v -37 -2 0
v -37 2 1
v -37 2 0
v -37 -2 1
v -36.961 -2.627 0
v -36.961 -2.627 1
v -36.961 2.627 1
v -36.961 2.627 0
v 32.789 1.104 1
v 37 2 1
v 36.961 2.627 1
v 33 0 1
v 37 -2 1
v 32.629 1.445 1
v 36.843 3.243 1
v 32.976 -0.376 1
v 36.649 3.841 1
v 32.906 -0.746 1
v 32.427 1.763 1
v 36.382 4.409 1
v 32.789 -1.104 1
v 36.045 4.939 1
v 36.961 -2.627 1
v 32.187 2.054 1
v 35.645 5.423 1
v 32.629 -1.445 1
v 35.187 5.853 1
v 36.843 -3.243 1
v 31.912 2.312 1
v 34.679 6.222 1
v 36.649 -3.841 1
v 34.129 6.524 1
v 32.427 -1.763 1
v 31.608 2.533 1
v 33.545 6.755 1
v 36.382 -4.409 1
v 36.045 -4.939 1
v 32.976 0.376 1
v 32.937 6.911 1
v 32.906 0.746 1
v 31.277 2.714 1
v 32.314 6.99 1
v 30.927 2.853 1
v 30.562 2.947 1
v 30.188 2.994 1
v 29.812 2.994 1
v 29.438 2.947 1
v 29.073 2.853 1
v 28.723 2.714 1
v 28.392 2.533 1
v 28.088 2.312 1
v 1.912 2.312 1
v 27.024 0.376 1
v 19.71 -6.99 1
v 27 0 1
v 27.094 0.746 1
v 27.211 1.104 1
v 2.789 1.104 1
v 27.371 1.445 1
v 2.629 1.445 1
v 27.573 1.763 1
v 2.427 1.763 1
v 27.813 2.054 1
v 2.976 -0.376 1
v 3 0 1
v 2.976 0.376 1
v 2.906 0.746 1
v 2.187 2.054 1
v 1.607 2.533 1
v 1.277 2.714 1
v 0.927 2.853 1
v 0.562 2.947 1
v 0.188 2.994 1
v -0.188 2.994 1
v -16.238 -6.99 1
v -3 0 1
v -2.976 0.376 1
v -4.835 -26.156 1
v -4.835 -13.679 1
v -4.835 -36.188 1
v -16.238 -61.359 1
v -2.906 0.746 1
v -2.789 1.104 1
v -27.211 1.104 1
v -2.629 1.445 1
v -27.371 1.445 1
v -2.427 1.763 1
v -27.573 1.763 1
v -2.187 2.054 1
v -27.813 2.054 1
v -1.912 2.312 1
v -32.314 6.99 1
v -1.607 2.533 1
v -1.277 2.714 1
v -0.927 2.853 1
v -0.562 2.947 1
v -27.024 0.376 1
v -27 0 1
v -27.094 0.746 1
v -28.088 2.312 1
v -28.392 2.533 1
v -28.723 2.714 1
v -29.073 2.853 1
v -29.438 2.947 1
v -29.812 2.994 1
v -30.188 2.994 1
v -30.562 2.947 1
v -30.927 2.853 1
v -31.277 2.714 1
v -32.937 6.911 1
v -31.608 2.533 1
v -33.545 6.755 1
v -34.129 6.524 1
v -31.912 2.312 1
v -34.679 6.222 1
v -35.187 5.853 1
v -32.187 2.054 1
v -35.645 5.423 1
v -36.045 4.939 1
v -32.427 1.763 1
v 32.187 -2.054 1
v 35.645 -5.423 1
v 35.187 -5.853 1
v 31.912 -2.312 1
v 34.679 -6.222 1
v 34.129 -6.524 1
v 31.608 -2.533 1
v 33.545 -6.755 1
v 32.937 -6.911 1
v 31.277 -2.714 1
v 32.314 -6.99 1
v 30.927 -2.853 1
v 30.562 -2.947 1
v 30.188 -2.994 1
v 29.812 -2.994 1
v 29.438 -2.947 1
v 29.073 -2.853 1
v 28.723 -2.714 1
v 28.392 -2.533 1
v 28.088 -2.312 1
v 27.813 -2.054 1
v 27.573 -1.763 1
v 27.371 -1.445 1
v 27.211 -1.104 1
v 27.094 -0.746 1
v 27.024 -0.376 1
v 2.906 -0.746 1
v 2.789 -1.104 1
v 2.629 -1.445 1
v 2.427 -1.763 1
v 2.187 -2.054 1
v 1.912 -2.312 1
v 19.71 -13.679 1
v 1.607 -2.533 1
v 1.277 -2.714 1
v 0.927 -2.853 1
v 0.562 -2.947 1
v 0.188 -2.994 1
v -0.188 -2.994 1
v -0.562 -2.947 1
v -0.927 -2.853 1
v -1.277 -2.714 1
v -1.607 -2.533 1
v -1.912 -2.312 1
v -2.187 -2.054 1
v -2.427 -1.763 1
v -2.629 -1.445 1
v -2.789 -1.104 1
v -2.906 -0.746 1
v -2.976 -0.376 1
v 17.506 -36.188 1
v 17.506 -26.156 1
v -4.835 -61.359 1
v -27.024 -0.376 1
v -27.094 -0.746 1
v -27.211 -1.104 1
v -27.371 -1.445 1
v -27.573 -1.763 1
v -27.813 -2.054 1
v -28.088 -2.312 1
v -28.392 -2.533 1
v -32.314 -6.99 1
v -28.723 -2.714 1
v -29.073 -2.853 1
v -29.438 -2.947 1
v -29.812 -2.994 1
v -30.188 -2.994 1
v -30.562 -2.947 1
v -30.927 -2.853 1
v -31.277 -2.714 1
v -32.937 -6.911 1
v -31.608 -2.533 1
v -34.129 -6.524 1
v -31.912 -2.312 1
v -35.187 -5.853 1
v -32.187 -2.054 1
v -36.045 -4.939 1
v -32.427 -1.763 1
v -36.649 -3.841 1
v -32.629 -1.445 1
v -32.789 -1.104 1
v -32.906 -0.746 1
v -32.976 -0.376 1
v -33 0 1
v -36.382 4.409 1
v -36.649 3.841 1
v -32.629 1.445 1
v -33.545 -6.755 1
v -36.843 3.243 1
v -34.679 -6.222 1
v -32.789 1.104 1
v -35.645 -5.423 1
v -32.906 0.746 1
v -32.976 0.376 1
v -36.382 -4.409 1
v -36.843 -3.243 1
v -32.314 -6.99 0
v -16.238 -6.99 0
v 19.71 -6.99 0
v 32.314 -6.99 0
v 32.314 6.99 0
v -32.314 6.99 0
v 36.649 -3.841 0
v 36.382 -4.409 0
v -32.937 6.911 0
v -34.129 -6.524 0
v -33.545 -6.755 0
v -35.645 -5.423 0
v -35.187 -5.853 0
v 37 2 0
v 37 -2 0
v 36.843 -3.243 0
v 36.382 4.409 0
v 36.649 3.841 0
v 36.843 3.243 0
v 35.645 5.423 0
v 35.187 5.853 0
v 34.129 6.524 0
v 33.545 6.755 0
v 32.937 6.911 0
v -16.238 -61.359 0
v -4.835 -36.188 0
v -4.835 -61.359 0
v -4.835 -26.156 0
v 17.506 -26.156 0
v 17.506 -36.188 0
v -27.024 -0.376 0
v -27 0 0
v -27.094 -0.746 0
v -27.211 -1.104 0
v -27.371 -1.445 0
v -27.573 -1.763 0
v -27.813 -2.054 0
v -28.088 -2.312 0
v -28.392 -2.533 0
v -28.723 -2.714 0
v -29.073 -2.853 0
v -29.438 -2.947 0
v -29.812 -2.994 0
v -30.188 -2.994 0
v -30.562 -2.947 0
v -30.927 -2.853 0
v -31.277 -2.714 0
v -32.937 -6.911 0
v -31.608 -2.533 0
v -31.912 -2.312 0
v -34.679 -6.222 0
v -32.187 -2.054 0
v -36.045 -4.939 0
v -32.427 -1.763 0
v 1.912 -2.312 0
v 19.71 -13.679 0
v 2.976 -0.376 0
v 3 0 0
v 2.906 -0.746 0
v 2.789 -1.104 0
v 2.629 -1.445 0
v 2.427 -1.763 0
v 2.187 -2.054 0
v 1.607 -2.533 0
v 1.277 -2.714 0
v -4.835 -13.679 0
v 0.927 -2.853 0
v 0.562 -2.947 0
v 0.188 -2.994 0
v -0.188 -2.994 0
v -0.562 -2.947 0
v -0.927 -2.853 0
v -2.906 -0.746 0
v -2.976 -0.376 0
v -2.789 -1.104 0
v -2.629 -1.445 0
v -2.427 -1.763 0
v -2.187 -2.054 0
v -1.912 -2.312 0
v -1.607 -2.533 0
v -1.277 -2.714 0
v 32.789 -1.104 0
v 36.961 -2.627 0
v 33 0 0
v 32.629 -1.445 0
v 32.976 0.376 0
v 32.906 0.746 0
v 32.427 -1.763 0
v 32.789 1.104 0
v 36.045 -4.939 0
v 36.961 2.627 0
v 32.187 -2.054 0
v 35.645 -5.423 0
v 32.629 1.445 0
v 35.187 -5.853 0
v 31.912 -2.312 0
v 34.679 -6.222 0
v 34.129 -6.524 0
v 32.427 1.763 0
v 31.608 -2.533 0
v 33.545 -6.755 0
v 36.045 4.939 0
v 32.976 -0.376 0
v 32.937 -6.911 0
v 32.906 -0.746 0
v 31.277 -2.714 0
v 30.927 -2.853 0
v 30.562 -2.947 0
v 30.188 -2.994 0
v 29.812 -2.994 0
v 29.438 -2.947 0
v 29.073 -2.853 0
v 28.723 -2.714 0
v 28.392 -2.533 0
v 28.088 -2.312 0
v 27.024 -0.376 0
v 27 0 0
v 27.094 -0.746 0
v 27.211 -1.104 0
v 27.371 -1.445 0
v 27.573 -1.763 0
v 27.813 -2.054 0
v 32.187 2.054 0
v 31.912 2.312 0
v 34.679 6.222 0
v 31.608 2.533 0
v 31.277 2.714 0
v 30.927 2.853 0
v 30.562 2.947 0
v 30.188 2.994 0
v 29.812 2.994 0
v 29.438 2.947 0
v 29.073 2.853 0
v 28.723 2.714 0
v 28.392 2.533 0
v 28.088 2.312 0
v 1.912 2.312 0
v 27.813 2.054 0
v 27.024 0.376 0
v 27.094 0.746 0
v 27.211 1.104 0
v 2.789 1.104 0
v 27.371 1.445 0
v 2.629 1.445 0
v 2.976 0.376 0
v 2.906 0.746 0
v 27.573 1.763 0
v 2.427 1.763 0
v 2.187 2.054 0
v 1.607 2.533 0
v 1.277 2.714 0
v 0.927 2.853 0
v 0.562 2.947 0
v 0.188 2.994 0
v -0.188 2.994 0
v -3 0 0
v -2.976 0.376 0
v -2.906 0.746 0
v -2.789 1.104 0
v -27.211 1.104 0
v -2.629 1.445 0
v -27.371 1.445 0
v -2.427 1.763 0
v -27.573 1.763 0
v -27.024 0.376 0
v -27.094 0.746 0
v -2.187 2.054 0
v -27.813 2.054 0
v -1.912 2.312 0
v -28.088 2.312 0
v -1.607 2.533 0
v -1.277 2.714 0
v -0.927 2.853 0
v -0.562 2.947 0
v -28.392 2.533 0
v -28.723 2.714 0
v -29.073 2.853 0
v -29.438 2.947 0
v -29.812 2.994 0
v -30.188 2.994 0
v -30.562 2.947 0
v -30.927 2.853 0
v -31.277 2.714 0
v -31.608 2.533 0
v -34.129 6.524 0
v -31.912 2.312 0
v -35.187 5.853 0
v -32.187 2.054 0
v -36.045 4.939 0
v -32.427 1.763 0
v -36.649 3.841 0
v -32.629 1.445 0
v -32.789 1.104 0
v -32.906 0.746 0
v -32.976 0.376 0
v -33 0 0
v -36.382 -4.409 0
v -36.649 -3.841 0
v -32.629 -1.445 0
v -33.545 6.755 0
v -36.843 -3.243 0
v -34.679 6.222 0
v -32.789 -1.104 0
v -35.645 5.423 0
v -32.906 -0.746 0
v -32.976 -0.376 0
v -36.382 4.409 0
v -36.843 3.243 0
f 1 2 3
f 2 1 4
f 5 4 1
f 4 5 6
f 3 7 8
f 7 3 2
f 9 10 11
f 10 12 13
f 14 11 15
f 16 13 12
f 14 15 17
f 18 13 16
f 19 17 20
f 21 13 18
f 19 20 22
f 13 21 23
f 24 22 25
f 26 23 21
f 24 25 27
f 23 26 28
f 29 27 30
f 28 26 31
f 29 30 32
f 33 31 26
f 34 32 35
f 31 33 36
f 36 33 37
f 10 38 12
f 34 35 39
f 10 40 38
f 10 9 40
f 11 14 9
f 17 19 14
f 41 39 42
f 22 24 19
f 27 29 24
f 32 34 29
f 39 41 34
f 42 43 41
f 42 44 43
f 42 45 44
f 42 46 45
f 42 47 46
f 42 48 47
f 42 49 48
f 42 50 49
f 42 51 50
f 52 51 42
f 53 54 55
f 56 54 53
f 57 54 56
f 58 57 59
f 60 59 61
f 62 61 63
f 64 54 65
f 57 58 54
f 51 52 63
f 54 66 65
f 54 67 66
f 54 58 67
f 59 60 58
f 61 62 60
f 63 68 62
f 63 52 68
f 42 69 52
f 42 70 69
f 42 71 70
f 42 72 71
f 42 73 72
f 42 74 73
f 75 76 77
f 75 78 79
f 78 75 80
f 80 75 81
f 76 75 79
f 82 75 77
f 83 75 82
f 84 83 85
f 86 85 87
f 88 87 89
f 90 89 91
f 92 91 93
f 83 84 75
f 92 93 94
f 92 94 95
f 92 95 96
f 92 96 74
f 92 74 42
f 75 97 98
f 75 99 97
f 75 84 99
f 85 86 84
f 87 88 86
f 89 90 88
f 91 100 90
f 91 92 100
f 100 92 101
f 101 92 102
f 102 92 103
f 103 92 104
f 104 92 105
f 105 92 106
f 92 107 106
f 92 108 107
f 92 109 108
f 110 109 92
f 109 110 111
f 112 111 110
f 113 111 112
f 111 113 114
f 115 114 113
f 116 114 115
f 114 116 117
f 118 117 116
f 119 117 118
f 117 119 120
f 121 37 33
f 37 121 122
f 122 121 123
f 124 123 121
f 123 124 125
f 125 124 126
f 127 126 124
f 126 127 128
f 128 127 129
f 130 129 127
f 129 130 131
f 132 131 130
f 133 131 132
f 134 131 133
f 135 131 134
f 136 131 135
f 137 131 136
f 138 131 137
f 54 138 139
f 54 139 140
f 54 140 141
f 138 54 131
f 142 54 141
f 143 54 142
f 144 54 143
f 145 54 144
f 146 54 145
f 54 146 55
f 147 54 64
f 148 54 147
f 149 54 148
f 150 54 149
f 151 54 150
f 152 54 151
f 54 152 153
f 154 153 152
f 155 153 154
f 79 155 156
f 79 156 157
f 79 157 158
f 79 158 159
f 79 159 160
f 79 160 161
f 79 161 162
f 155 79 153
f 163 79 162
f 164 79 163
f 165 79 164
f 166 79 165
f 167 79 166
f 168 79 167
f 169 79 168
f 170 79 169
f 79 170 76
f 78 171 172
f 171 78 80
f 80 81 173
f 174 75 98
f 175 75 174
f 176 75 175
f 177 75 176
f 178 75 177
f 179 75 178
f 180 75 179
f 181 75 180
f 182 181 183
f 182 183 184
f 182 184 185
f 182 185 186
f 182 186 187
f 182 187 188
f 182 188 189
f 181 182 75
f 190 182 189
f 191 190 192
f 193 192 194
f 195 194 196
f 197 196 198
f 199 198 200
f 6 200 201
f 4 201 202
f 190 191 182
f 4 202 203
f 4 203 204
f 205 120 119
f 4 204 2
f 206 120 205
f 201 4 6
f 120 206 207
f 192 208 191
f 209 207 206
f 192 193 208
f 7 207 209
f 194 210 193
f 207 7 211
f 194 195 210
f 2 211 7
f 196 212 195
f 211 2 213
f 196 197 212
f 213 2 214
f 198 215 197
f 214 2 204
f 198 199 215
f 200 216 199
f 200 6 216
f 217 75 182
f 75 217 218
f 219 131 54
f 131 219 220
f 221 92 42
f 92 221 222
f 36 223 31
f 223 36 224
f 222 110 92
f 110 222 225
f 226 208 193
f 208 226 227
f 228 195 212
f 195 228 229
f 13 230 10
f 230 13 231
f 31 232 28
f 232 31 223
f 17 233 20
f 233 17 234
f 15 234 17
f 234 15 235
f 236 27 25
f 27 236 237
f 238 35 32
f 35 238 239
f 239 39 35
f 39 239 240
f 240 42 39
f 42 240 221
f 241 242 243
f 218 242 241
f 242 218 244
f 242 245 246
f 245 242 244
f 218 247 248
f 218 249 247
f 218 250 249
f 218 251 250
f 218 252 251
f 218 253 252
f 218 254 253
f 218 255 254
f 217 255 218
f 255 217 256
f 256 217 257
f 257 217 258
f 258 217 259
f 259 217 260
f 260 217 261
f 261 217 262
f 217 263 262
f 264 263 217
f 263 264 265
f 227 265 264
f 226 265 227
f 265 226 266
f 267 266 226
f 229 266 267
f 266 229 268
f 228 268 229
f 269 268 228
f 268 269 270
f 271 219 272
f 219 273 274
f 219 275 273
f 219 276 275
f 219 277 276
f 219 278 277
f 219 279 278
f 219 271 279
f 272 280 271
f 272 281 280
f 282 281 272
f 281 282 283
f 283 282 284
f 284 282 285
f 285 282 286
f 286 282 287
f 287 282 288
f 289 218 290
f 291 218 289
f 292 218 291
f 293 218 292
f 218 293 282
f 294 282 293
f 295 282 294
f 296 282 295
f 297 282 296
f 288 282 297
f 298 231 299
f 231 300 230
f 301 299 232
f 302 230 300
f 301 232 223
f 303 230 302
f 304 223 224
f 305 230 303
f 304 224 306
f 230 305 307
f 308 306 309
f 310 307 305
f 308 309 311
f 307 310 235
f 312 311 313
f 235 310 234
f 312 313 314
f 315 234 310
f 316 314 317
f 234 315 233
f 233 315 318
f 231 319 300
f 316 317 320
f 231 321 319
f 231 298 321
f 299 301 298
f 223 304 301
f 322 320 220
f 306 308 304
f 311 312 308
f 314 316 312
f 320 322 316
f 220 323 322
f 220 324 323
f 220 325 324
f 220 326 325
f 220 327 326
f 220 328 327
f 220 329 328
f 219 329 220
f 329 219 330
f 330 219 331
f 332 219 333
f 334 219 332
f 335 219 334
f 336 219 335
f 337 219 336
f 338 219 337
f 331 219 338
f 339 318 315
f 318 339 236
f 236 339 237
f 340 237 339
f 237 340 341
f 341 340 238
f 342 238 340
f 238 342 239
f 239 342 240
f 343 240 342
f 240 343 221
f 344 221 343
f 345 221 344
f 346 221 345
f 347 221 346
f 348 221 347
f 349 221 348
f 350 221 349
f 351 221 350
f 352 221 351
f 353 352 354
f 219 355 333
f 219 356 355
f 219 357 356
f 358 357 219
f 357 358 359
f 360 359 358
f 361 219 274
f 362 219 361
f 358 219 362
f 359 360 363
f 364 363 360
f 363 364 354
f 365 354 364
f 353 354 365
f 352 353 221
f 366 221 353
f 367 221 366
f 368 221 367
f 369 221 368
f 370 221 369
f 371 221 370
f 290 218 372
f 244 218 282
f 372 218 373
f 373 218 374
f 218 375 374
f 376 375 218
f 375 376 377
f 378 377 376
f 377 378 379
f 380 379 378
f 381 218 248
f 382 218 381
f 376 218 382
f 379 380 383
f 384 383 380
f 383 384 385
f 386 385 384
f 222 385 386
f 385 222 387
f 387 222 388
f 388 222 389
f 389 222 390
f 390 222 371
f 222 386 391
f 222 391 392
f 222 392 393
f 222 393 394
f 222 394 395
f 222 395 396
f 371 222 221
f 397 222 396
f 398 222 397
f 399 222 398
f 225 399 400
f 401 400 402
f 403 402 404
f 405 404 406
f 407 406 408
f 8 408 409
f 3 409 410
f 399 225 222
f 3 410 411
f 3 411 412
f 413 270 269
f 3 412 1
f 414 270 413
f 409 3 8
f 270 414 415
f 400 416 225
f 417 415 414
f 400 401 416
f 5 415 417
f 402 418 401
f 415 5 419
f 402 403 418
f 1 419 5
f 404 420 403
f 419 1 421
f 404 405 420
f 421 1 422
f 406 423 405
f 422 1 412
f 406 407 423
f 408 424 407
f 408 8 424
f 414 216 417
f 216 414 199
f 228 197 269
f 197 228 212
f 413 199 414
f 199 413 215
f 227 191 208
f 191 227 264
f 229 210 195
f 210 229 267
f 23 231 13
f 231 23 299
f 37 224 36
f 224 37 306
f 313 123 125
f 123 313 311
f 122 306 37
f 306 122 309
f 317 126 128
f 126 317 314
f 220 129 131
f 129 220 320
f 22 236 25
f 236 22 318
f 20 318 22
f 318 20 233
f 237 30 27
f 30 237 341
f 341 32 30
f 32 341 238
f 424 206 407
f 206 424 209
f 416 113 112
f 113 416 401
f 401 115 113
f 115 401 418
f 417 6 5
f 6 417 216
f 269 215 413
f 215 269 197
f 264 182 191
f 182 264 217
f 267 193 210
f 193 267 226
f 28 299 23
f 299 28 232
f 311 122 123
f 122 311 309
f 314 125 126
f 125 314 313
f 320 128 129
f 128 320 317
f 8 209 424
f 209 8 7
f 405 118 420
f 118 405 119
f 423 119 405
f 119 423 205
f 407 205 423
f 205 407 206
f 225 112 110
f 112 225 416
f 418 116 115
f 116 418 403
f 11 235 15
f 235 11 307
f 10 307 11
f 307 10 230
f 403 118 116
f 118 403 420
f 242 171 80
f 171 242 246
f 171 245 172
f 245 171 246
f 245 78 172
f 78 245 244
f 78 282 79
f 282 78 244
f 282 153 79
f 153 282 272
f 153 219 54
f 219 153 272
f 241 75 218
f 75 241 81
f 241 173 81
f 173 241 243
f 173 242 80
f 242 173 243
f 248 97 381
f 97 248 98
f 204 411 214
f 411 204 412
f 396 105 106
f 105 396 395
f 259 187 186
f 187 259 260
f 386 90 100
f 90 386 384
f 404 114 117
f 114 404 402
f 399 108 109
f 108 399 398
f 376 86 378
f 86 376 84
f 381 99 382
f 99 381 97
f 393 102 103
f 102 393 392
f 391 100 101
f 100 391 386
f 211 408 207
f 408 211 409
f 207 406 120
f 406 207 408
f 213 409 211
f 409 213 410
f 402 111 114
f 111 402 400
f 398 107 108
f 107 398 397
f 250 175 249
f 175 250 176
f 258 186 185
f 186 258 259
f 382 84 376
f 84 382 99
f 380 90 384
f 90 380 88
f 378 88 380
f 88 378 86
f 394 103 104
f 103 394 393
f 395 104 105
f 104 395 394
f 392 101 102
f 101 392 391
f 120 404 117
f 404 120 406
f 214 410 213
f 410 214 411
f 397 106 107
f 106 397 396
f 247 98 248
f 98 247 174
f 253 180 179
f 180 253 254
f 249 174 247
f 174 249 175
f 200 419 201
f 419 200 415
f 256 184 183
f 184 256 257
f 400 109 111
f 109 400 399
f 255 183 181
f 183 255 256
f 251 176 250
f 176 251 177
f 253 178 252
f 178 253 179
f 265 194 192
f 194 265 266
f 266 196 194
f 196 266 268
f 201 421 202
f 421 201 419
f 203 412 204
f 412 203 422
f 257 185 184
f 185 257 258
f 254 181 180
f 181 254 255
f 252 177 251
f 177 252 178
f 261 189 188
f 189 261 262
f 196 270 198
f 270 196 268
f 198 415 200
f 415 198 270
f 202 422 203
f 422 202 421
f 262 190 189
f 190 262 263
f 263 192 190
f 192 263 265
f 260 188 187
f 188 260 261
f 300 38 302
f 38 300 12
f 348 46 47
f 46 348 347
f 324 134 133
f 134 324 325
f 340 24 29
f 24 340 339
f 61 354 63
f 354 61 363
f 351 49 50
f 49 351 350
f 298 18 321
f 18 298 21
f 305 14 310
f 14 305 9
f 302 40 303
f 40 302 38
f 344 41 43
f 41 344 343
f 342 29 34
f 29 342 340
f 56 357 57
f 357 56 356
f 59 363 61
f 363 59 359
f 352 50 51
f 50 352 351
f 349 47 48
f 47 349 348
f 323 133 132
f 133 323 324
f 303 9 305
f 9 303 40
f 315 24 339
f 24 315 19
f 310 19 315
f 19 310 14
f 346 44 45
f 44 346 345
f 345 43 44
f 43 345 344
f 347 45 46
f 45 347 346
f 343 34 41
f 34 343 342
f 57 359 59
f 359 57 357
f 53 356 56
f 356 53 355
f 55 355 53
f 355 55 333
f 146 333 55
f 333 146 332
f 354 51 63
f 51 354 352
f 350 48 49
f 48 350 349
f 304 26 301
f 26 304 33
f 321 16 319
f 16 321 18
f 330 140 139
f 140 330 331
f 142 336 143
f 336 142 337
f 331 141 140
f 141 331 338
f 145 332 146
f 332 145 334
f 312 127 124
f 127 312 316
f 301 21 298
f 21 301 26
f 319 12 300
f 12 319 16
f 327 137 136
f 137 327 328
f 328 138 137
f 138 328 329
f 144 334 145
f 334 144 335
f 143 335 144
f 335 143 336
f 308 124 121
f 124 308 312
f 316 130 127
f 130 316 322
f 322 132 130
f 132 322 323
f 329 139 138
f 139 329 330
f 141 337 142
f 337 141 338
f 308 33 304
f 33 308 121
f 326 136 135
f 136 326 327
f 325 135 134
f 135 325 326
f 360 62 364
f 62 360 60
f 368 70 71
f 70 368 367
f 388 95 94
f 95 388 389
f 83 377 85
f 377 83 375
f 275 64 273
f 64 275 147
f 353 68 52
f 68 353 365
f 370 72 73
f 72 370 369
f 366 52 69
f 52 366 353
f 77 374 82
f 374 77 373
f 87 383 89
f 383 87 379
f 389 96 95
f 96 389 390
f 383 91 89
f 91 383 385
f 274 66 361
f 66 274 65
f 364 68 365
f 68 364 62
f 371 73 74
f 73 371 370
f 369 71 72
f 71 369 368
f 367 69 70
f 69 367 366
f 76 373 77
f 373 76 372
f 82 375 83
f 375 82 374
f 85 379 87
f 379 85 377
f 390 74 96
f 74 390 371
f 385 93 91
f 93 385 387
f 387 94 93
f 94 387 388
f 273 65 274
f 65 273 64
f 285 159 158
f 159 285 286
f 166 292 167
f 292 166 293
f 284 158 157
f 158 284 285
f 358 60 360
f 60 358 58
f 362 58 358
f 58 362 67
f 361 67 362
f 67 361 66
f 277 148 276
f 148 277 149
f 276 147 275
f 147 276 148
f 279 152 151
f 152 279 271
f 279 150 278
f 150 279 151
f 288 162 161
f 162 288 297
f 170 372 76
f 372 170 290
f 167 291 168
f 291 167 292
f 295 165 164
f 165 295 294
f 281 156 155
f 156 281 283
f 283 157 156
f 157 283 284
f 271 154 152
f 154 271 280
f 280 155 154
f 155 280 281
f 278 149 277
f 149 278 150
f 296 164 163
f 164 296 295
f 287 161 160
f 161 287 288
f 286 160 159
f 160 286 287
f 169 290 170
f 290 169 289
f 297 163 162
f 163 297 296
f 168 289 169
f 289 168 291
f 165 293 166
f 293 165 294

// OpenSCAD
$fn = 50;


difference() {
	union() {
		translate(v = [0, 0, 0]) {
			rotate(a = [0, 0, 0]) {
				hull() {
					translate(v = [-32.0000000000, 2.0000000000, 0]) {
						rotate(a = [0, 0, 0]) {
							translate(v = [0, 0, 0]) {
								rotate(a = [0, 0, 0]) {
									cylinder(h = 1, r = 5);
								}
							}
						}
					}
					translate(v = [32.0000000000, 2.0000000000, 0]) {
						rotate(a = [0, 0, 0]) {
							translate(v = [0, 0, 0]) {
								rotate(a = [0, 0, 0]) {
									cylinder(h = 1, r = 5);
								}
							}
						}
					}
					translate(v = [-32.0000000000, -2.0000000000, 0]) {
						rotate(a = [0, 0, 0]) {
							translate(v = [0, 0, 0]) {
								rotate(a = [0, 0, 0]) {
									cylinder(h = 1, r = 5);
								}
							}
						}
					}
					translate(v = [32.0000000000, -2.0000000000, 0]) {
						rotate(a = [0, 0, 0]) {
							translate(v = [0, 0, 0]) {
								rotate(a = [0, 0, 0]) {
									cylinder(h = 1, r = 5);
								}
							}
						}
					}
				}
			}
		}
		translate(v = [0, -5, 0]) {
			rotate(a = [0, 0, 0]) {
				linear_extrude(height = 1) {
					text(font = "DejaVu Sans Mono:style=Bold", halign = "center", size = 57.0000000000, text = "F", valign = "top");
				}
			}
		}
	}
	union() {
		translate(v = [-30.0000000000, 0.0000000000, -125.0000000000]) {
			rotate(a = [0, 0, 0]) {
				cylinder(h = 250, r = 3.0000000000);
			}
		}
		translate(v = [30.0000000000, 0.0000000000, -125.0000000000]) {
			rotate(a = [0, 0, 0]) {
				cylinder(h = 250, r = 3.0000000000);
			}
		}
		translate(v = [30.0000000000, 0.0000000000, -125.0000000000]) {
			rotate(a = [0, 0, 0]) {
				cylinder(h = 250, r = 3.0000000000);
			}
		}
		translate(v = [0, 0, -125.0000000000]) {
			rotate(a = [0, 0, 0]) {
				cylinder(h = 250, r = 3.0000000000);
			}
		}
	}
}
